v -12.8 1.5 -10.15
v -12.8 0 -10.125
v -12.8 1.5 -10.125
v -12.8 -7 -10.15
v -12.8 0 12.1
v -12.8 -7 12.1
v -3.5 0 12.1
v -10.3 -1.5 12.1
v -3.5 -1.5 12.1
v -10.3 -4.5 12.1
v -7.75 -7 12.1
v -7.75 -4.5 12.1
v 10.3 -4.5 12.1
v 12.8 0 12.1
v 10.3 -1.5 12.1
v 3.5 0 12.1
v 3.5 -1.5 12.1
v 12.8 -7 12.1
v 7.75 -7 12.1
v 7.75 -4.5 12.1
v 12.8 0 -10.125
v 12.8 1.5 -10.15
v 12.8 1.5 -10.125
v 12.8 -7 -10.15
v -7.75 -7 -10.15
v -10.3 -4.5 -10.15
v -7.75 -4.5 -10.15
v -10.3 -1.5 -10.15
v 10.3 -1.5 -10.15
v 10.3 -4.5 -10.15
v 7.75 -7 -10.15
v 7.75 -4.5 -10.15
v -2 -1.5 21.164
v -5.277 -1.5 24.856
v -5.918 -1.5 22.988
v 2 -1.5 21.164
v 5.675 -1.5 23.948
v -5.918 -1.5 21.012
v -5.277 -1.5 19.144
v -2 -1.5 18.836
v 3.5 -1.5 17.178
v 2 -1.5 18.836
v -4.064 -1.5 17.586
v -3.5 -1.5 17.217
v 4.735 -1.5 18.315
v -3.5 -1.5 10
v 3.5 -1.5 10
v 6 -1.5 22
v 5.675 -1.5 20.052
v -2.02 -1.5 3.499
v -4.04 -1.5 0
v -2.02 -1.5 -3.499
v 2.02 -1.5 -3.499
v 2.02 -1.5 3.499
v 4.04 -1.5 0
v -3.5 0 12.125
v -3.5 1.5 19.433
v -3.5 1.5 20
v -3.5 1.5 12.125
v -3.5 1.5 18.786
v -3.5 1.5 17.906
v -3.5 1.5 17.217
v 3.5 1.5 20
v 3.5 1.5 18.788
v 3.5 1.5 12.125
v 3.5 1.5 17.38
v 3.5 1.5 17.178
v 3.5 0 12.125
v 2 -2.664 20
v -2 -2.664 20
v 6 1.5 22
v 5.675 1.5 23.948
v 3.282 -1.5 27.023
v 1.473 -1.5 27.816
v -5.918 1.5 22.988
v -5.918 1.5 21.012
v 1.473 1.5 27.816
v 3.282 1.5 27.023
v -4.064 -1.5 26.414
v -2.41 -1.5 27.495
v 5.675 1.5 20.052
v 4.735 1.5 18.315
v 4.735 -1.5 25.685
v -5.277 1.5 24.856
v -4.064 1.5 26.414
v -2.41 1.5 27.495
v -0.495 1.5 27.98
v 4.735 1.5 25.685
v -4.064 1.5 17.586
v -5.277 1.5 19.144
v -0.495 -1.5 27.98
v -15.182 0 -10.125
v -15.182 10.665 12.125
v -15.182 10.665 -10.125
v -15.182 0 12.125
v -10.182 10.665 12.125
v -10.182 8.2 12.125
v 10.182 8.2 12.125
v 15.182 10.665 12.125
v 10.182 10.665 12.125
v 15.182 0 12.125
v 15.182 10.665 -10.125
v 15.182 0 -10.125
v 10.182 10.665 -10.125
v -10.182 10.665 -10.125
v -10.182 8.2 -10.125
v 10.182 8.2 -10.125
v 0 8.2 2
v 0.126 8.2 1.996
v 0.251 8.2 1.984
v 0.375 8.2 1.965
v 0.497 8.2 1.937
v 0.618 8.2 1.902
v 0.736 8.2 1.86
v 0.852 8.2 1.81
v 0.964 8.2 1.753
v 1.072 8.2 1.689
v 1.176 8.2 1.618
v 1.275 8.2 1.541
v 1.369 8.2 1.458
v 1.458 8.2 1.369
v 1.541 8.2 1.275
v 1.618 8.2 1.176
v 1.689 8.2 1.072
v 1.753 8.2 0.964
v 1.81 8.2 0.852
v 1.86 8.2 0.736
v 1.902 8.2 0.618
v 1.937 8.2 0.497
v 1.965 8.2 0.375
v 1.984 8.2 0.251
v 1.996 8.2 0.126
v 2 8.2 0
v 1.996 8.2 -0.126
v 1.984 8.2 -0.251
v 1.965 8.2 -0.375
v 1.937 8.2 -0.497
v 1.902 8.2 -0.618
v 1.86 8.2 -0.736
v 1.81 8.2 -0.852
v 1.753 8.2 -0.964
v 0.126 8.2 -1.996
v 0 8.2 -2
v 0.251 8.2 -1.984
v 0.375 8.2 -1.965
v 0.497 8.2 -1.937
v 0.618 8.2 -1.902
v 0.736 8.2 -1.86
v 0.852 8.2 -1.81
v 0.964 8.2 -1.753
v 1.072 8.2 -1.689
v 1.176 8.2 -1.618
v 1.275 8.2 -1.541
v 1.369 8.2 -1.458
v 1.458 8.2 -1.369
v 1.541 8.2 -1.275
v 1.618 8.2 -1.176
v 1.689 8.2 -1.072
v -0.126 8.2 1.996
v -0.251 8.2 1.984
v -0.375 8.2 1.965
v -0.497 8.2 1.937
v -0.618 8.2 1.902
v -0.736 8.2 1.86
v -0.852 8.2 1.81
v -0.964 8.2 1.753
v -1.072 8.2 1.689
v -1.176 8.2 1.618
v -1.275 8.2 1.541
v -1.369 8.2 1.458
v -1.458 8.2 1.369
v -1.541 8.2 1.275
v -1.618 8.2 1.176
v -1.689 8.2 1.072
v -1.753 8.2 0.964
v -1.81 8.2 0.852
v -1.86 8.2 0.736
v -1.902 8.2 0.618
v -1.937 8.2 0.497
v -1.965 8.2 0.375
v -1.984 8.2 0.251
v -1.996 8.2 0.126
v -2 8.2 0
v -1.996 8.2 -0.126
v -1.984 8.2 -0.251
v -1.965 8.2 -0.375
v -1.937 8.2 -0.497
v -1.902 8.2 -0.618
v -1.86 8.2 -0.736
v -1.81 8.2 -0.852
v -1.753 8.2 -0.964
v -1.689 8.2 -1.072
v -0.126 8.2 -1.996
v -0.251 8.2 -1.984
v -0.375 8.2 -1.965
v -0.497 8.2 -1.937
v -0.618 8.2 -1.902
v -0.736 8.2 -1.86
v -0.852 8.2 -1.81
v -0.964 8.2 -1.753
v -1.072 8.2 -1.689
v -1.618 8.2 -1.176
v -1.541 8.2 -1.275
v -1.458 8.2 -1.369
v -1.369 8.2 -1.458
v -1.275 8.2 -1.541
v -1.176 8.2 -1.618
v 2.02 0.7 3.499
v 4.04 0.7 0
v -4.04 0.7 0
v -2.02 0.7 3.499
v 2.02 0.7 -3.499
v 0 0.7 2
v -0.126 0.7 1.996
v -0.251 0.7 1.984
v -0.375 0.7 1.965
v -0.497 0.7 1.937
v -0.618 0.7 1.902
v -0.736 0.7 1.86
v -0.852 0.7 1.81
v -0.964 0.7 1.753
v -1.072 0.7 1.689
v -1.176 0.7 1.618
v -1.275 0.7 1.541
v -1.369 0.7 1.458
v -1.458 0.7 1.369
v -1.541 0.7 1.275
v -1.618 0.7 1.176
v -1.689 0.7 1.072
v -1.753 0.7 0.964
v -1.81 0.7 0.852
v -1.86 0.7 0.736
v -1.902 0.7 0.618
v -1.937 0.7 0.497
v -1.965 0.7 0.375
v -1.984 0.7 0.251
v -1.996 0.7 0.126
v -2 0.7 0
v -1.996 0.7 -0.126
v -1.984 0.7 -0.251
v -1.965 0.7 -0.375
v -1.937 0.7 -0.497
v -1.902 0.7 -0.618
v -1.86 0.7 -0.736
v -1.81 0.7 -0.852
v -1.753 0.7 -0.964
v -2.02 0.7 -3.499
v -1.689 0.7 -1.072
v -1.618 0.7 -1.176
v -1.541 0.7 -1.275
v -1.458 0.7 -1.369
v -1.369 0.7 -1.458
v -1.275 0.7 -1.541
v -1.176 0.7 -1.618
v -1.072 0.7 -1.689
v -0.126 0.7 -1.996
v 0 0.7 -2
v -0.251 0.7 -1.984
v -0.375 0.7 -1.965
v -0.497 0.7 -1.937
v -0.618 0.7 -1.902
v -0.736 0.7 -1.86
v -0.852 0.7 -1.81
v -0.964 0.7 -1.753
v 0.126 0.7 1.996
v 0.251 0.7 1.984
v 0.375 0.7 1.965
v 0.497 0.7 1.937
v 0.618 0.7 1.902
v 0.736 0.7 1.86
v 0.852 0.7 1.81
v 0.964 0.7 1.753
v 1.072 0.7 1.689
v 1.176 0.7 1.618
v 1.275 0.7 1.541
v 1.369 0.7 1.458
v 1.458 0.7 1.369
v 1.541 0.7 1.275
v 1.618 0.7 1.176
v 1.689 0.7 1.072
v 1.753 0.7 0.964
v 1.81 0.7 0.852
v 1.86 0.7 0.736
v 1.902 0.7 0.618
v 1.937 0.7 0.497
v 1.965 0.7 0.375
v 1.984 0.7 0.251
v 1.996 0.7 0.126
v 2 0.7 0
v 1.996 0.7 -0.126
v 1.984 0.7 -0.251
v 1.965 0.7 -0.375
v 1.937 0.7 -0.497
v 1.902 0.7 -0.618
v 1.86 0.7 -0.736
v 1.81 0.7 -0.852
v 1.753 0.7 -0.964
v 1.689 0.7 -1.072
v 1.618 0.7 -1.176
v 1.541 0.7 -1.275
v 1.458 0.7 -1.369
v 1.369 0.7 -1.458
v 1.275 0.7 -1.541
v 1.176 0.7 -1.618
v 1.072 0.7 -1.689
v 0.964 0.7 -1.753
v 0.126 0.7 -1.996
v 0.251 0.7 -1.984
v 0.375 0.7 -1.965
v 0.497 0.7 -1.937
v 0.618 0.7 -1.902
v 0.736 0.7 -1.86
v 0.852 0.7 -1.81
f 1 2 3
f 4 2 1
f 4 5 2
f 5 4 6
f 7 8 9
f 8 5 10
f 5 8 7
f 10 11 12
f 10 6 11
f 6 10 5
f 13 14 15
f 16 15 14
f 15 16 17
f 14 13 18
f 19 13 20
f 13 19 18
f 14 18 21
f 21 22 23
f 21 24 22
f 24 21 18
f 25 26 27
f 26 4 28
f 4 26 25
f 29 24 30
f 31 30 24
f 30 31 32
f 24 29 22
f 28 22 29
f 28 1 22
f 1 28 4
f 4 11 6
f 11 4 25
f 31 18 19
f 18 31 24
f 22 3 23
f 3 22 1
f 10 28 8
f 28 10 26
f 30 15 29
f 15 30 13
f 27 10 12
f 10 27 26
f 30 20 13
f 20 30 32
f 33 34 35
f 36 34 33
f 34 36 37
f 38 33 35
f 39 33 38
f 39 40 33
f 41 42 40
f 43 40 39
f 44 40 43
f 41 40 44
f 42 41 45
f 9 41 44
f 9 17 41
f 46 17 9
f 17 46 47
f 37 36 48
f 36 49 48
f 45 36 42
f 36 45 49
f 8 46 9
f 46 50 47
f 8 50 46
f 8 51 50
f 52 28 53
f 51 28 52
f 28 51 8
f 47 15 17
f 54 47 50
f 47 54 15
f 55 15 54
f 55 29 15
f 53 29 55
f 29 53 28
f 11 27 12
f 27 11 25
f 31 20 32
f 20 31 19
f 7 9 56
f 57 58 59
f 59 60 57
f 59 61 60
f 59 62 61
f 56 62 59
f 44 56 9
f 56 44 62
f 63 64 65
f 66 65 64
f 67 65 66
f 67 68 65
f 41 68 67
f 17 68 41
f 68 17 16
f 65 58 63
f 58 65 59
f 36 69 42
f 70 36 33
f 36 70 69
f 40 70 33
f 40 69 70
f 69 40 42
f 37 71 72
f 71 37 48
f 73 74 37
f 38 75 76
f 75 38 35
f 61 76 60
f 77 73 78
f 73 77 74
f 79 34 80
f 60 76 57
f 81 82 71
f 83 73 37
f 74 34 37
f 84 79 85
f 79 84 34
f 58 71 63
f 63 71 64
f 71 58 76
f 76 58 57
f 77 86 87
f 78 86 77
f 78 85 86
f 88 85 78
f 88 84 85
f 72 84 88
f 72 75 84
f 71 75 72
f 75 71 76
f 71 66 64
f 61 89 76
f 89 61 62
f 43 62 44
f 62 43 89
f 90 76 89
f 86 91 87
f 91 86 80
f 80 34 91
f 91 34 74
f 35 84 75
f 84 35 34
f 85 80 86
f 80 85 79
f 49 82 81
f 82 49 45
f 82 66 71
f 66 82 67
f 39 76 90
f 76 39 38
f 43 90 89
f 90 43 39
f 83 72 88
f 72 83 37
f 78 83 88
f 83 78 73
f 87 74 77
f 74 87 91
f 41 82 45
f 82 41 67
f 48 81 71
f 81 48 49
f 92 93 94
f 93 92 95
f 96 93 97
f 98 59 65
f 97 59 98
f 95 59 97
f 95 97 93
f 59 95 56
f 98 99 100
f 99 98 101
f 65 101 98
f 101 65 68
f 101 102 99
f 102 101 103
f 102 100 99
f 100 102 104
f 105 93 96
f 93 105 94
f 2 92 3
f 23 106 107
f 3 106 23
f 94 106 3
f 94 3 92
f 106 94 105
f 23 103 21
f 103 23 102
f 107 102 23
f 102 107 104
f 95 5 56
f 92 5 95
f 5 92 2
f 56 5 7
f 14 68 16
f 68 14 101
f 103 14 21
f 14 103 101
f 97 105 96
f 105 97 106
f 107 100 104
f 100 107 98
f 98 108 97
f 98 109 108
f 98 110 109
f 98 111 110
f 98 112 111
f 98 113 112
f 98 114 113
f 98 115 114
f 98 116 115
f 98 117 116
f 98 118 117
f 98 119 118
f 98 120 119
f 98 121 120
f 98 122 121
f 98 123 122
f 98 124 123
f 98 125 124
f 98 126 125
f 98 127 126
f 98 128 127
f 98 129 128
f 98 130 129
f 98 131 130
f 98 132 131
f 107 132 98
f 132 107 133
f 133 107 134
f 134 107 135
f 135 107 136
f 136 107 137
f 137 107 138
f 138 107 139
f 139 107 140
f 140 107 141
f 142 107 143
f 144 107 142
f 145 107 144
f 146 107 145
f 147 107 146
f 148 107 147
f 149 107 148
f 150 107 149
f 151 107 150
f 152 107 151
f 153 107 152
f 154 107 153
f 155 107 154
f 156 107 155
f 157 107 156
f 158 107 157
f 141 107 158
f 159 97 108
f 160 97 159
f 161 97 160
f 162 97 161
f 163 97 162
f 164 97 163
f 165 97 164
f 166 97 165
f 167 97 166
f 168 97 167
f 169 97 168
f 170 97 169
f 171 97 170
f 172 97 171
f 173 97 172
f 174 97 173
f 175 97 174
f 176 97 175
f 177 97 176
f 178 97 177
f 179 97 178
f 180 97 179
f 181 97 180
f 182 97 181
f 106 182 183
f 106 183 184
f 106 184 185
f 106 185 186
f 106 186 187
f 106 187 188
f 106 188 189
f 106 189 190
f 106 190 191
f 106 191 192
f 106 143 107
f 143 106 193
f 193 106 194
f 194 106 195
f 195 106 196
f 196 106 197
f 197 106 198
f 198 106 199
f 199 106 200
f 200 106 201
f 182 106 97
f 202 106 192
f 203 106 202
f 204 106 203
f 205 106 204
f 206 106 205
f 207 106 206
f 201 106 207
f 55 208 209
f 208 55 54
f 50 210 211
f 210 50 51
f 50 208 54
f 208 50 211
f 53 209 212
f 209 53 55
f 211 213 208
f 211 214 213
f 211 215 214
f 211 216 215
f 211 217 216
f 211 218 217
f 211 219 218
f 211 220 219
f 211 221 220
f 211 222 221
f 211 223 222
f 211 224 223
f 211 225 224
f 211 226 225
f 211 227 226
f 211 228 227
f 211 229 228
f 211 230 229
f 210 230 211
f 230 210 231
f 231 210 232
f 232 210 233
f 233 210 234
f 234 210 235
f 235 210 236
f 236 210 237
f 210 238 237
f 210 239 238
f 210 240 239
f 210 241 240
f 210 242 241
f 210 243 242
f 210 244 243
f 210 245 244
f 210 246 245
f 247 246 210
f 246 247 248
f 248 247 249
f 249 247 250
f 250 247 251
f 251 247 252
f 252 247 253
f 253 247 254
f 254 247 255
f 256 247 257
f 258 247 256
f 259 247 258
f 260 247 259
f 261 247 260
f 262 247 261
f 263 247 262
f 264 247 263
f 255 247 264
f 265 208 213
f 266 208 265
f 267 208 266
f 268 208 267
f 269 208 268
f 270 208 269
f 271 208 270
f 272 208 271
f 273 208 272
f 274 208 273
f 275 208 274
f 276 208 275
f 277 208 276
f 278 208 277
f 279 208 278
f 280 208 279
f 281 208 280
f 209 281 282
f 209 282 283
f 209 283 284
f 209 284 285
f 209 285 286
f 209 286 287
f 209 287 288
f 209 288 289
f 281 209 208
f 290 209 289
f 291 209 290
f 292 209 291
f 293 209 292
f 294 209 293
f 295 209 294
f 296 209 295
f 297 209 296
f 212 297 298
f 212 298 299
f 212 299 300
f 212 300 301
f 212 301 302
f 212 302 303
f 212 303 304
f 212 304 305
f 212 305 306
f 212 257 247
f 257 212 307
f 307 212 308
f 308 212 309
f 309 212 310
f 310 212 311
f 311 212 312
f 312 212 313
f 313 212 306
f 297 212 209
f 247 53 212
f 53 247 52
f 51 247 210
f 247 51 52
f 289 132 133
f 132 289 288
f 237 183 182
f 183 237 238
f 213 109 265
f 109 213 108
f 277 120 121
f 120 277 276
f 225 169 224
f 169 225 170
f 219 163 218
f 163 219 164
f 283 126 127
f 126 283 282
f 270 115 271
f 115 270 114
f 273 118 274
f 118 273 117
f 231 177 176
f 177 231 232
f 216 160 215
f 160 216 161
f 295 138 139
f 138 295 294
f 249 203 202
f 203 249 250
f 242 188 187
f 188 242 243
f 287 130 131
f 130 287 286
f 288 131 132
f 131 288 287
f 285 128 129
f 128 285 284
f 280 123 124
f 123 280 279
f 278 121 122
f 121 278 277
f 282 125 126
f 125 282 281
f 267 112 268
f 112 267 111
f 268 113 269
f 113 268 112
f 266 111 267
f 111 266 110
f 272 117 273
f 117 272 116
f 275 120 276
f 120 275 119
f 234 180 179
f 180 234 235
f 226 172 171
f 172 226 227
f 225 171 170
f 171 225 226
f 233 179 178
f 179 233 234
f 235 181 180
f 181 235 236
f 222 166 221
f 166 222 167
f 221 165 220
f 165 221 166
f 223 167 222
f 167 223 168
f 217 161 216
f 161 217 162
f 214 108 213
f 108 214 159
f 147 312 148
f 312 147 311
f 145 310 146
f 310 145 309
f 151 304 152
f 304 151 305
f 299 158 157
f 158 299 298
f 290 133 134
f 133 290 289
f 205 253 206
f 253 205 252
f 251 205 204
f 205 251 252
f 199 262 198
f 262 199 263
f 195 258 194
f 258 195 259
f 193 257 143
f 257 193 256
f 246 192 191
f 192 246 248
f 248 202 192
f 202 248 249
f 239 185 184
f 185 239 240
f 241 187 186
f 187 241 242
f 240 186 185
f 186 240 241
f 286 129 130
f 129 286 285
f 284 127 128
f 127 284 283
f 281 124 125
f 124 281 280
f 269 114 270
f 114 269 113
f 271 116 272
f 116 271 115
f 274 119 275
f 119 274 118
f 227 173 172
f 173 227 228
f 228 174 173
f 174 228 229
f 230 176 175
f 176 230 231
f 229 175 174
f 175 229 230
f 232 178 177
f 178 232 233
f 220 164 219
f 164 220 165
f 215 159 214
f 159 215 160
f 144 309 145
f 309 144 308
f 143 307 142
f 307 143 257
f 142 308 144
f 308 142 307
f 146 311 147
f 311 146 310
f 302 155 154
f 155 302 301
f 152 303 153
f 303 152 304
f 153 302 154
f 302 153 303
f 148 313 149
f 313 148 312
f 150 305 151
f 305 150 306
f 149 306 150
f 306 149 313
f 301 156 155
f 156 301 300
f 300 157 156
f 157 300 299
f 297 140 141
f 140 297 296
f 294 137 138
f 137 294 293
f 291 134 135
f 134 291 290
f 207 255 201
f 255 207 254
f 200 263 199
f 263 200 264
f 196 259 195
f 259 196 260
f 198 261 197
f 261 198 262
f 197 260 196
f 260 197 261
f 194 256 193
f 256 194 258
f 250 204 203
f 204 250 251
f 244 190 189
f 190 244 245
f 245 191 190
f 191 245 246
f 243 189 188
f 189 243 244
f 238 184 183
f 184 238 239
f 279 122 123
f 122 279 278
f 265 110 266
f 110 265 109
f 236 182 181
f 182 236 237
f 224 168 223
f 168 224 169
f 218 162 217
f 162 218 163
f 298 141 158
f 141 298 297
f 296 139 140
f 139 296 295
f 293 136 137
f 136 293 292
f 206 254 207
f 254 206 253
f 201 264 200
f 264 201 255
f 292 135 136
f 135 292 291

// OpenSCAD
/*

Modificaitons by Aaron Nielsen
20 October 2019

Original:
Adapter for bike light to rack
Gian Pablo Villamil
May 30, 2011

*/

bracket_height = 22.25;
tongue_width = 20.6;
tongue_thickness = 3;
base_width = 15.5;
base_thickness = 2.5;
side_thickness = 2.5;

plate_thickness = 3;
plate_width = 100;
plate_height = 20.3;

hole_dia = 5.8 ;
hole_sep = 82 ;

// these are the dimensions of the rack bracket I have mm
rack_bracket_width = 15.365; 
rack_bracket_thick = 2.465; 
slop = 5; // mm amount of tolerance for printing

giant_dimension = 1000; 

// these were copied from my corner reflector T-style mount
m4_nut_height = 3.2; // global
module m4_nut_hole(){
    $fn = 6; // hex nut
    // see https://www.engineersedge.com/hardware/standard_metric_hex_nuts_13728.htm
    // for dimensions
    nut_height = 3.3; // max height allowed in spec
    //nut_width = 7.0; // max distance between flats
    nut_width = 8.08; // max distance between peaks
    cylinder( h = nut_height, r1 = nut_width/2, r2 = nut_width/2 );
    
}//end m4_nut_hole
//m4_nut_hole();

module m4_thru_hole(){
    m4_diam = 4; //mm
    $fn=100;
    cylinder( h =giant_dimension, r = m4_diam/2, center = true ); 
} //end m4_thru_hole

module m4_nut_and_thru(){
  translate([ 0,0,-m4_nut_height ]){
    m4_nut_hole();
}
m4_thru_hole();  
}// end m4_nut_and_thru
// dimensions of the extra material for bolt old and nuts

module plate() {
	difference() {
		union() {
			cube(size= [hole_sep, plate_thickness, plate_height], center = true);
			translate ([hole_sep/2,0,0]) rotate (a = 90, v = [1,0,0]) 
				cylinder(h = plate_thickness, r = plate_height/2, center = true);
			translate ([-hole_sep/2,0,0]) rotate (a = 90, v = [1,0,0]) 
				cylinder(h = plate_thickness, r = plate_height/2, center = true);
			translate ([hole_sep/2+plate_height/4,0,-plate_height/4])
				cube(size = [plate_height/2,plate_thickness,plate_height/2],center = true);
			translate ([-(hole_sep/2+plate_height/4),0,-plate_height/4])
				cube(size = [plate_height/2,plate_thickness,plate_height/2],center = true);

		}
		translate ([hole_sep/2,0,0]) rotate (a = 90, v = [1,0,0]) 
			cylinder(h = plate_thickness+2, r = hole_dia/2, center = true);
		translate ([-hole_sep/2,0,0]) rotate (a = 90, v = [1,0,0]) 
			cylinder(h = plate_thickness+2, r = hole_dia/2, center = true);
	};
};

module bracket_thick() {
    
    // these are the dimensions for the slot that the rack bracket will fit into
    slot_width = rack_bracket_width + slop; 
    slot_height = bracket_height;
    slot_thick = rack_bracket_thick; 
    
    wing_thickness = 5; // mm
    
    bracket_thickness = 5; // mm used dims from corner reflector design
    
    total_thick = slot_thick + m4_nut_height + bracket_thickness ; 
    total_width = slot_width + 2*wing_thickness ; 
    total_height = slot_height; 
    
    translate( [ 0, 0, 1] )
    difference() {
        
        // this is the main outer shape
        translate( [-total_width/2, 0, -total_height/2 ]  )
        cube( [ total_width, total_thick, total_height  ] );      
    
        // this is the cutout
        translate( [ -slot_width/2, total_thick-slot_thick, -slot_height/2 ] )
        cube( [ slot_width, slot_thick, slot_height ]); 
        
        
    } // end difference 
    
}; //end bracket_thick

module bracket() {
	difference(){
		translate([-(tongue_width+(side_thickness *2))/2,0,0])
		cube(size = [tongue_width+(side_thickness * 2),plate_thickness+tongue_thickness+base_thickness, bracket_height], center = false);
		translate([-tongue_width/2,2.5,0])
		cube(size = [tongue_width, tongue_thickness, bracket_height], center=false);
		translate([-base_width/2,0,0])
		cube(size = [base_width, base_thickness, bracket_height], center=false);
	};
};

module release() {
	union() {
		translate([-3.5,-plate_thickness/2,0])
		#cube(size = [7, plate_thickness, 10], center = false);
		translate([0,-1.25,10]) rotate(a = 45, v = [1,0,0])
		cube(size = [4,2,2], center = true);
		translate([0,plate_thickness/2,12]) rotate(a = 90, v = [1,0,0])
		cylinder(h = plate_thickness, r = 6);
	};
}



difference() {
    
union() {
//plate();
bracket_thick(); 
translate([0,-7,-plate_height/2])
bracket();
translate([0,0,10])
release();} // end union

translate( [0, -base_thickness, 0] )
rotate( [90, 0, 0] )
m4_nut_and_thru(); 
}
//end difference
